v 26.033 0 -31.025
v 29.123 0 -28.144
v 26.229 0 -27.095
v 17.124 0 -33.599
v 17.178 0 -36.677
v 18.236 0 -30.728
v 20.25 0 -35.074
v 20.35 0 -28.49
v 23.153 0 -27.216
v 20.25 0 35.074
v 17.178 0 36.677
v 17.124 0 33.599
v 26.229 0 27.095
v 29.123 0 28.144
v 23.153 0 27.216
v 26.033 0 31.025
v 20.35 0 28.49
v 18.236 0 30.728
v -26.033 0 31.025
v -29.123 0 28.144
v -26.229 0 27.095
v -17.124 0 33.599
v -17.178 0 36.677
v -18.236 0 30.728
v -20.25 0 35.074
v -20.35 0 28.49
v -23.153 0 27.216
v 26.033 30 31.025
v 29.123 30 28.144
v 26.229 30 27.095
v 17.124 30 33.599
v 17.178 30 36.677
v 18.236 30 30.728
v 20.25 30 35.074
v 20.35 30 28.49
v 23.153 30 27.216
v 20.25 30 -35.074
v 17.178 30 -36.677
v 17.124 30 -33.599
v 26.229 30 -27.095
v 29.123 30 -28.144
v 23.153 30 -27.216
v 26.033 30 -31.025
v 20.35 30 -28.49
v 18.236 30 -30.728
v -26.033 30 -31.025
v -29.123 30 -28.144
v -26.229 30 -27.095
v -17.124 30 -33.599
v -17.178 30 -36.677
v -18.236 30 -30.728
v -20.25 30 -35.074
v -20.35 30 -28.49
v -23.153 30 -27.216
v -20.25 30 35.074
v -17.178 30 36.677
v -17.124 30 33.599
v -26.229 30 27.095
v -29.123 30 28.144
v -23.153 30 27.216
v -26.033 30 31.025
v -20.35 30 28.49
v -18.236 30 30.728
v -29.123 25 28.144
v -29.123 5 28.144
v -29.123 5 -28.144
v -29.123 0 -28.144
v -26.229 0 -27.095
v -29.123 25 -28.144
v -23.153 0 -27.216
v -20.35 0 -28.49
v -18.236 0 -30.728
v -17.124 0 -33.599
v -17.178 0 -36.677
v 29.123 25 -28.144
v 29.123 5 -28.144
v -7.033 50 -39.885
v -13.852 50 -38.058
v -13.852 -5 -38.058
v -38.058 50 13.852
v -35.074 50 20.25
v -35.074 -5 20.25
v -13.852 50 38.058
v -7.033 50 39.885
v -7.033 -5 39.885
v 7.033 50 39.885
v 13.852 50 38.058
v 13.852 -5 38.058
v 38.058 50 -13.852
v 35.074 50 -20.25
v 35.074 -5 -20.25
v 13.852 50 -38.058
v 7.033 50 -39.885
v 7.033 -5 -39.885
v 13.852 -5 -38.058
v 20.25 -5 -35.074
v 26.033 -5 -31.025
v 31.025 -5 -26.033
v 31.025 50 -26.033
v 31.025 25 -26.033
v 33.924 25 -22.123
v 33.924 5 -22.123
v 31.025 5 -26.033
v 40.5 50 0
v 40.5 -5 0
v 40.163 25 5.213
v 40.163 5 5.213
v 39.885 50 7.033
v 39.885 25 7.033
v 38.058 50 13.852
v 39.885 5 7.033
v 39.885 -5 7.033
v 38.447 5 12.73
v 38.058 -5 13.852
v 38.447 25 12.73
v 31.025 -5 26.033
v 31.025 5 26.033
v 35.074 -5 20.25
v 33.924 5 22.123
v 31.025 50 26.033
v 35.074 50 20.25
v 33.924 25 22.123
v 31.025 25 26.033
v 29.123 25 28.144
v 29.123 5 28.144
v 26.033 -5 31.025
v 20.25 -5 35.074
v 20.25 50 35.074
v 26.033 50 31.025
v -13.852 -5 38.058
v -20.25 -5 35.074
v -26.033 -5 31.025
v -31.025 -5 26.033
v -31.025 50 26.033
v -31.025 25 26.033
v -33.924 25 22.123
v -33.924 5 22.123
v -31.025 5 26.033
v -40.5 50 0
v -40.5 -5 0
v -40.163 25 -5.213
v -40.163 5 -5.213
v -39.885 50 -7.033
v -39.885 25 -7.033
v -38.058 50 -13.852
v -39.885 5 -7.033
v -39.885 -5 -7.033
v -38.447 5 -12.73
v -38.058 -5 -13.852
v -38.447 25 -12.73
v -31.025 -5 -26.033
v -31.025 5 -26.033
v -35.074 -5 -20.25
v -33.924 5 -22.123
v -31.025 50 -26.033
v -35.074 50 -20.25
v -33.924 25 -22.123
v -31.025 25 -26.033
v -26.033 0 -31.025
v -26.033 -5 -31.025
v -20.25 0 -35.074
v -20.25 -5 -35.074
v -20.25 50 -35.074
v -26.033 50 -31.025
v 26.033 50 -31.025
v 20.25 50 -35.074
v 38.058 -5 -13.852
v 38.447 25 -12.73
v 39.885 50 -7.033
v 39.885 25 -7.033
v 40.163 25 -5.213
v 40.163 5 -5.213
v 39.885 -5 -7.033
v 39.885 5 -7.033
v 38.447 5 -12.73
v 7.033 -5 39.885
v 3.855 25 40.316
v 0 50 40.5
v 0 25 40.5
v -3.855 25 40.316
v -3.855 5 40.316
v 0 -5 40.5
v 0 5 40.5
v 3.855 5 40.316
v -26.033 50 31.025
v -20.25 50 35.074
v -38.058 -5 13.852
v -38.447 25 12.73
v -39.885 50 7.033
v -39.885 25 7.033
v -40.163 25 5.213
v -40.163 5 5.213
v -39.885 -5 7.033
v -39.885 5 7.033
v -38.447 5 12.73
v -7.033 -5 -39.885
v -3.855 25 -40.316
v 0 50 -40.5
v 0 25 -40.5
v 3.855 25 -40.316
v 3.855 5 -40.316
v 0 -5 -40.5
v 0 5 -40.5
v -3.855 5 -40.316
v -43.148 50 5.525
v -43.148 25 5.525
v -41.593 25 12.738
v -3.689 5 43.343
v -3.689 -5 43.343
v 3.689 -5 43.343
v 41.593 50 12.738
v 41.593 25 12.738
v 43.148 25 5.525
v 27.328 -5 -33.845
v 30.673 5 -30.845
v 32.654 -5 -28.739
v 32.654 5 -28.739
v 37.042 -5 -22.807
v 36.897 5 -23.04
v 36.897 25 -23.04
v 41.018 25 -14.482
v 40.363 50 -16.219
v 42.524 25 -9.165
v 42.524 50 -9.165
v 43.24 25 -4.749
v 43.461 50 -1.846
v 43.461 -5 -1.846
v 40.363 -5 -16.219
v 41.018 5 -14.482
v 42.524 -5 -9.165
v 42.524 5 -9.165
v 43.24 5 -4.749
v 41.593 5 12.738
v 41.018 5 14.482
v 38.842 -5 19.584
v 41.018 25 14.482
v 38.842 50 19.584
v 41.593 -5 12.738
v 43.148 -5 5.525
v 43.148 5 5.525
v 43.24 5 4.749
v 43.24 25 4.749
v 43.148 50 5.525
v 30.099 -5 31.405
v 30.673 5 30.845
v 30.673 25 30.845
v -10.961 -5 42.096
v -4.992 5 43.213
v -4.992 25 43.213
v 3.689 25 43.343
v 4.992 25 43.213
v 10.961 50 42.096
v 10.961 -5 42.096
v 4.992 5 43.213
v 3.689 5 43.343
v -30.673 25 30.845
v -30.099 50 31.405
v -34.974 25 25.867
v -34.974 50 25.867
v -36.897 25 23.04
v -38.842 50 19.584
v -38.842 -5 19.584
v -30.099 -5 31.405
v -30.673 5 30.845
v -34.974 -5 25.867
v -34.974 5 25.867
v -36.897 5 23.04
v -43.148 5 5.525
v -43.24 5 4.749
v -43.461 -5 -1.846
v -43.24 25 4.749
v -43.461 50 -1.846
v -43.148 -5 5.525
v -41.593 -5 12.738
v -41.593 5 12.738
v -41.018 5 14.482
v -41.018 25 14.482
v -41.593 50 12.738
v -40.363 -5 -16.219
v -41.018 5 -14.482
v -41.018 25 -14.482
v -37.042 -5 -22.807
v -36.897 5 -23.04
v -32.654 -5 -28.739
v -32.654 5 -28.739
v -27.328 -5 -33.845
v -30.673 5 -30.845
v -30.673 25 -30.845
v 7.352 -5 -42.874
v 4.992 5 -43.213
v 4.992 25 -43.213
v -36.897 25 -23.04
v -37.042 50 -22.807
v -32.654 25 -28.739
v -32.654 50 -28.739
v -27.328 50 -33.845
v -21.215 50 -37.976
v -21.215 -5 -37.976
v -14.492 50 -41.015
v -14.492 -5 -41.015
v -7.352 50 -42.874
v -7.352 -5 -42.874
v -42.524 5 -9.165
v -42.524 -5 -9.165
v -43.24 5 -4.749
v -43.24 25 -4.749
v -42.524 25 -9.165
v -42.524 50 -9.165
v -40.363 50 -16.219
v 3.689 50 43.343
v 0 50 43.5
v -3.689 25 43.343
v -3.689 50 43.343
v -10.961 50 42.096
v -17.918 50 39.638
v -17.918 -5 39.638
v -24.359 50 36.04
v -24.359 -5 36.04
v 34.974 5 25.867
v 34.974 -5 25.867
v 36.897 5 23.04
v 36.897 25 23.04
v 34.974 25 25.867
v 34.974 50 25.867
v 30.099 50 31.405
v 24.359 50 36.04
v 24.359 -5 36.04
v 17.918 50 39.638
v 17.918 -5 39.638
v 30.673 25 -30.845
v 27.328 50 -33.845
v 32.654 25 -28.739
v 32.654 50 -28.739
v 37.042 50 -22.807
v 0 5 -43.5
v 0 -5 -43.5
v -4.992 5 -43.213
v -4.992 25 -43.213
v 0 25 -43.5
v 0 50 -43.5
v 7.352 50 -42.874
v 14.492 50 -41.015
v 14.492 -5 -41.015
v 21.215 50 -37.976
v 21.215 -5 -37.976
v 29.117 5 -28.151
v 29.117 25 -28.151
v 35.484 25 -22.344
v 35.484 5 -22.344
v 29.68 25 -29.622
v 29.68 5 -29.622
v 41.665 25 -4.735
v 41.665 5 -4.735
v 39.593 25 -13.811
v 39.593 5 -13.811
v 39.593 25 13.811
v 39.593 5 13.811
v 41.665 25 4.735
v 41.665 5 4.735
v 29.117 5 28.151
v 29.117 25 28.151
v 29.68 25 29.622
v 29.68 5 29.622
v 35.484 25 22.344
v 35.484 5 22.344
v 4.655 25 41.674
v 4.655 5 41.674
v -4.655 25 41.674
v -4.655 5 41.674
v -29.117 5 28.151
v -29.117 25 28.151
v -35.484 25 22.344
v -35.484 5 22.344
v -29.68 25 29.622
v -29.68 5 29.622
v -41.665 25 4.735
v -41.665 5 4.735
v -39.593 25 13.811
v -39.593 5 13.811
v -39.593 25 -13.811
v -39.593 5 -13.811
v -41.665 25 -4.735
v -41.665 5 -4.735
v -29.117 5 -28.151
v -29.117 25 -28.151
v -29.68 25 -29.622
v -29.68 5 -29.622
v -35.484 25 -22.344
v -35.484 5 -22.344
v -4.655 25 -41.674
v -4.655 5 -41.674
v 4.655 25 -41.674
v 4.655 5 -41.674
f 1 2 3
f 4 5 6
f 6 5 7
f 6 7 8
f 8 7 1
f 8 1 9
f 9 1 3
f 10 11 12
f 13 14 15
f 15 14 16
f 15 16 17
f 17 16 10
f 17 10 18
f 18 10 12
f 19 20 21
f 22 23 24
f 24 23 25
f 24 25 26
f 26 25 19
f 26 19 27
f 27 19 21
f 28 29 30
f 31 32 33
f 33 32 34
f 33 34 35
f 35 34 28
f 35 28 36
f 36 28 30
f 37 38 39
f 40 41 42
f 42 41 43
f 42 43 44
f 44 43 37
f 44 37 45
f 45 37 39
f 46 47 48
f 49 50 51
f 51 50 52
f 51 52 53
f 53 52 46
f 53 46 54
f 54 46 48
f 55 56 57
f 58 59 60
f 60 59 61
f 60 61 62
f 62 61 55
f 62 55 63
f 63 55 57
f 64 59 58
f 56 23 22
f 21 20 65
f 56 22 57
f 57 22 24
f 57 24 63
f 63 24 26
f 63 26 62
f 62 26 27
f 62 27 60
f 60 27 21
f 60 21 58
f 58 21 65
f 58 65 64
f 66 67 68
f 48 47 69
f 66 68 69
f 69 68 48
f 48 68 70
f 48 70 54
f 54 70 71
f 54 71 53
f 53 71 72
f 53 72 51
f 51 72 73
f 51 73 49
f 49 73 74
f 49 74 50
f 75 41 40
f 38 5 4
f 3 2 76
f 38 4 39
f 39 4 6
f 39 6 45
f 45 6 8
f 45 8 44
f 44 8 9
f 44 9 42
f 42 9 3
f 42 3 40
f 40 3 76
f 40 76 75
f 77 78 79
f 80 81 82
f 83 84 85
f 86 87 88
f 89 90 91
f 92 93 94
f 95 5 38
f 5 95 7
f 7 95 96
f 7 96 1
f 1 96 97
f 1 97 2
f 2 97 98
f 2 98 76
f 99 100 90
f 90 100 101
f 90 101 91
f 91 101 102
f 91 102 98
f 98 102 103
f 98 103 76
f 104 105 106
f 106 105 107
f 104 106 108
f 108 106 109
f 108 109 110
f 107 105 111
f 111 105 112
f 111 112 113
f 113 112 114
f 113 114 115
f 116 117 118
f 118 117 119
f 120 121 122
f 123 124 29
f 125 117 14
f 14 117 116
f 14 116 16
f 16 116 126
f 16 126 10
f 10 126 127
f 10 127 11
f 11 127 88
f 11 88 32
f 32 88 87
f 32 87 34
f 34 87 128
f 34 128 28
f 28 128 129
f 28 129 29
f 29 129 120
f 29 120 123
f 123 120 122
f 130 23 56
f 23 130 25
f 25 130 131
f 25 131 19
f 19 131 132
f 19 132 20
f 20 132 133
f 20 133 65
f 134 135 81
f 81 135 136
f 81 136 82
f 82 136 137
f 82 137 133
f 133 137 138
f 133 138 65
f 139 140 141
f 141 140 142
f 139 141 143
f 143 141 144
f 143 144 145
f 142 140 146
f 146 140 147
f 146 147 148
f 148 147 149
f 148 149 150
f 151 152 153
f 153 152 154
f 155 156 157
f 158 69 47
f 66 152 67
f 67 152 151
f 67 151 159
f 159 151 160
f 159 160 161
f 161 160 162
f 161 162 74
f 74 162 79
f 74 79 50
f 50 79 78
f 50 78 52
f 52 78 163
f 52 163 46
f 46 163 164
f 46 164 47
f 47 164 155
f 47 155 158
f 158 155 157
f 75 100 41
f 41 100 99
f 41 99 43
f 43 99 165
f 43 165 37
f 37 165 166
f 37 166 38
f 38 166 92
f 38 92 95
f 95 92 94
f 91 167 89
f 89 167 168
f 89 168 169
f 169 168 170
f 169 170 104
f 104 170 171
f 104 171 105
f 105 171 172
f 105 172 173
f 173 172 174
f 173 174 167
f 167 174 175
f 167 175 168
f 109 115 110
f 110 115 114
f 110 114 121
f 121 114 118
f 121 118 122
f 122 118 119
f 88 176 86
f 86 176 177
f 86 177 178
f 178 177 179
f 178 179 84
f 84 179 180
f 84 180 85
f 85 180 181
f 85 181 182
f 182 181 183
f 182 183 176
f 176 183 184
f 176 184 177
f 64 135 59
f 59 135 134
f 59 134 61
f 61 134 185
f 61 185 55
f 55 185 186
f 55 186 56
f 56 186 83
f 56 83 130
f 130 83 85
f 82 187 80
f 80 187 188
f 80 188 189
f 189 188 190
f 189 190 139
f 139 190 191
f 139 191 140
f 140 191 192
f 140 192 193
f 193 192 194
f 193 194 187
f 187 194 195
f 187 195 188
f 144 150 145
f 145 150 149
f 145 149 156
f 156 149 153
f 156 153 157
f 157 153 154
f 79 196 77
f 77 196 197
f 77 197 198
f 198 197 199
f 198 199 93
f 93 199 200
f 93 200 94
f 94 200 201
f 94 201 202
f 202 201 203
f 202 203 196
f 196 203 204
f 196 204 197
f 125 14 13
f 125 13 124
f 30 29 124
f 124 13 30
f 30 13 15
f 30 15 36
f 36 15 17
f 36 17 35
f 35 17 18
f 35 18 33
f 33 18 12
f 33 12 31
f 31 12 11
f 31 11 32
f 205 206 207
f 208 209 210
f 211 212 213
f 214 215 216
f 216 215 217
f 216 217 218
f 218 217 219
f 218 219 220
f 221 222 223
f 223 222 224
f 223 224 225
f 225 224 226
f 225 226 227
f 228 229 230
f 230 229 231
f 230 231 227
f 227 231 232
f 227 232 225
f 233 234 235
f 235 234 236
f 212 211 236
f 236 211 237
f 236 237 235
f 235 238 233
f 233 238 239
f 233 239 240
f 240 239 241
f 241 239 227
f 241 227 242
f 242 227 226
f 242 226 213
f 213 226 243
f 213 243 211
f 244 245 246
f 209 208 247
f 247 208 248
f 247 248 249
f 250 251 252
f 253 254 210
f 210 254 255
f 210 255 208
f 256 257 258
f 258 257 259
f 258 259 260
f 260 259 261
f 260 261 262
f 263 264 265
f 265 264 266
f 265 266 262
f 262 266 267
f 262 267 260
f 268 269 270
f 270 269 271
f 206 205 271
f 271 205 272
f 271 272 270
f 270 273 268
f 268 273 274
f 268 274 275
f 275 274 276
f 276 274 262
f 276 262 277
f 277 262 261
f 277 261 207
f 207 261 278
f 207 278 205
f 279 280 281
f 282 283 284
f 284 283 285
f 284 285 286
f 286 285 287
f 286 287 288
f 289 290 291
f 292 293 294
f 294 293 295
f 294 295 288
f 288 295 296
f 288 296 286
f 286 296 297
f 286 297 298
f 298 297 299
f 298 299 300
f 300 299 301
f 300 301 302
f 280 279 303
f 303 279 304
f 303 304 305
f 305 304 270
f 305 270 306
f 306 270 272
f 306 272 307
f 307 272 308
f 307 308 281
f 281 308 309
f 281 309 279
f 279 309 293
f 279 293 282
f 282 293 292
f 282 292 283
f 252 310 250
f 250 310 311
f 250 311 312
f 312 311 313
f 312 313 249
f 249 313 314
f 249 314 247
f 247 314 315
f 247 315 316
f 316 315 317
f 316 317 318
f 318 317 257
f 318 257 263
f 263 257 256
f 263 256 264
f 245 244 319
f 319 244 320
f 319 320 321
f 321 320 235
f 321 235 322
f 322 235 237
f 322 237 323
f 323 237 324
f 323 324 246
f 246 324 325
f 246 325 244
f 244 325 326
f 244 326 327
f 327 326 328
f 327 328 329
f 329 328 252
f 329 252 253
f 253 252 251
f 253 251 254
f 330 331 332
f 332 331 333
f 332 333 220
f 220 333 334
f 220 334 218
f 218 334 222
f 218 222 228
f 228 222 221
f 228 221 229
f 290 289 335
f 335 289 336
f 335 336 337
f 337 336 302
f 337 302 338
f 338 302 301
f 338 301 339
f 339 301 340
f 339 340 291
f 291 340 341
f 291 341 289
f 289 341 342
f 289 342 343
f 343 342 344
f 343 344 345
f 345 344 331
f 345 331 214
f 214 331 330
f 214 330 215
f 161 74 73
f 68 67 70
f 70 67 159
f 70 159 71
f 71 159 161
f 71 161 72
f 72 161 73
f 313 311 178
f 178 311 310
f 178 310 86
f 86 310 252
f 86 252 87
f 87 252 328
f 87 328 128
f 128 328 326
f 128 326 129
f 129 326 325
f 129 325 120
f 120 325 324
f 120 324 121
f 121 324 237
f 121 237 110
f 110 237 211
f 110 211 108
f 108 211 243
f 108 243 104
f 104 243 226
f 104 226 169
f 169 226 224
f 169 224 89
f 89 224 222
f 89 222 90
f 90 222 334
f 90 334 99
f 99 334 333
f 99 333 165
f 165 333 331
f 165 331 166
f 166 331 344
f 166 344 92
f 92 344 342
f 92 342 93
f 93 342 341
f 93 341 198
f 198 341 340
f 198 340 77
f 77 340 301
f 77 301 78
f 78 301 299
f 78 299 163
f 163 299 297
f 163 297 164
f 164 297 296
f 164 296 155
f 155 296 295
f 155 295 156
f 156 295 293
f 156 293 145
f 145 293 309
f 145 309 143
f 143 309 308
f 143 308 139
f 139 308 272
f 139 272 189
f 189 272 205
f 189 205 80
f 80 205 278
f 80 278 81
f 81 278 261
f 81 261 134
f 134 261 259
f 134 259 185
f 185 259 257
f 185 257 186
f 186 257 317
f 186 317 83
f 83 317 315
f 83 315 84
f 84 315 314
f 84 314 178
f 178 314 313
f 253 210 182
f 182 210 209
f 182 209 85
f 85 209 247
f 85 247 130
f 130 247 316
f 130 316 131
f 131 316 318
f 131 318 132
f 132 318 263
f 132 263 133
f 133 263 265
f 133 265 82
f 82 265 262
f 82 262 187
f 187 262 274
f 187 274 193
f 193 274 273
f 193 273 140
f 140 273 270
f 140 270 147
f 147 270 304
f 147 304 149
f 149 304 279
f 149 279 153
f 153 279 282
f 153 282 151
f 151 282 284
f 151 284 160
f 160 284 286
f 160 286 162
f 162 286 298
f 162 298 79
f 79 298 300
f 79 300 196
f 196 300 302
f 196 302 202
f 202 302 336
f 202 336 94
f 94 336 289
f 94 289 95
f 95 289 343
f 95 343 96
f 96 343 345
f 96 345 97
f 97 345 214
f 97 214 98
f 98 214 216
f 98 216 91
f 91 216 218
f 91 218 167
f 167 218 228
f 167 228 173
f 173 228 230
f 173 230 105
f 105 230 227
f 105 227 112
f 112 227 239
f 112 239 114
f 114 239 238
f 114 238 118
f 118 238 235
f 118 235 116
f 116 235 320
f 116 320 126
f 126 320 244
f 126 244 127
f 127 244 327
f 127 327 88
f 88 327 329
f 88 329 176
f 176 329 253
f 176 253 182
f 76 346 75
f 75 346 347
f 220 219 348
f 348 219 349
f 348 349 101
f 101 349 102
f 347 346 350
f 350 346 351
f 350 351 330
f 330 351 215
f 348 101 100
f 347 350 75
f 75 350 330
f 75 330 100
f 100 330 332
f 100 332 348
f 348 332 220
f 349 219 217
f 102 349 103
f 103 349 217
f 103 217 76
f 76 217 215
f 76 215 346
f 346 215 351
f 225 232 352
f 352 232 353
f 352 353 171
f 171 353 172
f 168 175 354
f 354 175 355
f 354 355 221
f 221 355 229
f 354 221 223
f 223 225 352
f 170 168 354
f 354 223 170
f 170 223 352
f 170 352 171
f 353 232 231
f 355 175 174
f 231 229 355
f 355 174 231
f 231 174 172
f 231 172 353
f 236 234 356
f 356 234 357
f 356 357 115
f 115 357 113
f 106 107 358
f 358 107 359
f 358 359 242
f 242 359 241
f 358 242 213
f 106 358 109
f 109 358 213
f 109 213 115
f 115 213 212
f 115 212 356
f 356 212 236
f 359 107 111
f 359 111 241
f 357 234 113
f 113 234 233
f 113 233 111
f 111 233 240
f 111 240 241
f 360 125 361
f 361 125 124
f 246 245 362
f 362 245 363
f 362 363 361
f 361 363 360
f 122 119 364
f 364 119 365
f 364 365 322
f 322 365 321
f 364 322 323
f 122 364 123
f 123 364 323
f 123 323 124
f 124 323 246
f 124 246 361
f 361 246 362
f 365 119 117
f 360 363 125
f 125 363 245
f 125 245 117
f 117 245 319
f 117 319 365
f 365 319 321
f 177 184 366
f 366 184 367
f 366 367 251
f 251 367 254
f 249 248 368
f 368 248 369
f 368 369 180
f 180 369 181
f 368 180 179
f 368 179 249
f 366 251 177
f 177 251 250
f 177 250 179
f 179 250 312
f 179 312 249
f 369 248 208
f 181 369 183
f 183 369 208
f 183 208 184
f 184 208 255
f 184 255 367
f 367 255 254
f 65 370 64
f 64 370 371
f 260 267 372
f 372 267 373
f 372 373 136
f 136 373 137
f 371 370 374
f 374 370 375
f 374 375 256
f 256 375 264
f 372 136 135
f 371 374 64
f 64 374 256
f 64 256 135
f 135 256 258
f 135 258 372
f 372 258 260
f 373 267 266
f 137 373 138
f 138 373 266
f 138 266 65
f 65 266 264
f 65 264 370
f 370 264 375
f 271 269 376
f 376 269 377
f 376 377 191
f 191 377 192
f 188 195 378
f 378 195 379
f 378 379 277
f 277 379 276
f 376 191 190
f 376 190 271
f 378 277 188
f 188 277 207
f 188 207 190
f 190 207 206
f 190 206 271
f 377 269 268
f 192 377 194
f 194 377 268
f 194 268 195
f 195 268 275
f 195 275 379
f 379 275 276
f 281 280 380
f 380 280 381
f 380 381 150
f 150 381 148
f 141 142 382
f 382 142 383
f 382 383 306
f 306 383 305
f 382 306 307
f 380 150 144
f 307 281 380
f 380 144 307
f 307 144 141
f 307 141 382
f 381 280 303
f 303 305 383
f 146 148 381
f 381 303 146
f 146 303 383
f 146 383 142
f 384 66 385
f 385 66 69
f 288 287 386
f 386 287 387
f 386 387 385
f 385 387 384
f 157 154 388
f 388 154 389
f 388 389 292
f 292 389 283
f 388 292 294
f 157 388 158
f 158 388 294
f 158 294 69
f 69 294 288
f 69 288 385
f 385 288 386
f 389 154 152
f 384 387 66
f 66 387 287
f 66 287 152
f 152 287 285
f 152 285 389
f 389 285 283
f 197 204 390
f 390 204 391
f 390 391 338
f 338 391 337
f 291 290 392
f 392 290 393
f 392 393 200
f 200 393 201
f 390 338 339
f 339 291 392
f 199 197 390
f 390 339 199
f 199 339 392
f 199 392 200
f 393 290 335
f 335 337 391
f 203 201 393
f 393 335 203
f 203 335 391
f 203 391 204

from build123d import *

# Parameters (mm, degrees)
SKETCH1_R               = 43.5
SKETCH1_R_2             = 40.5
BOSS_EXTRUDE1_DEPTH     = 30
SKETCH2_R               = 43.5
SKETCH2_R_2             = 40.5
BOSS_EXTRUDE2_DEPTH     = 20
BOSS_EXTRUDE3_START     = 5
SKETCH3_R               = 43.5
SKETCH3_R_2             = 40.5
BOSS_EXTRUDE3_DEPTH     = 5
CUT_EXTRUDE1_DEPTH      = 10
CUT_EXTRUDE1_DEPTH_BACK = 10


with BuildPart() as part:
    # Sketch1 → Boss-Extrude1 (new body)
    # profile 1 of 5: a face of its own
    with BuildSketch(Plane(origin=(0, 0, 0), x_dir=(1, 0, 0), z_dir=(0, 1, 0))):
        with Locations(Location((0, 0, 0), (0, 0, 270))):
            Circle(SKETCH1_R)
        Circle(SKETCH1_R_2, mode=Mode.SUBTRACT)
    # profile 2 of 5: a face of its own
    with BuildSketch(Plane(origin=(0, 0, 0), x_dir=(1, 0, 0), z_dir=(0, 1, 0))):
        with BuildLine():
            ThreePointArc((-29.123002918, 28.14428363), (-20.35009445, 28.49013223), (-17.177672758, 36.676662316))
            ThreePointArc((-17.177672758, 36.676662316), (-23.540146846, 32.956205584), (-29.123002918, 28.14428363))
        make_face()
    # profile 3 of 5: a face of its own
    with BuildSketch(Plane(origin=(0, 0, 0), x_dir=(1, 0, 0), z_dir=(0, 1, 0))):
        with BuildLine():
            ThreePointArc((-29.123002918, -28.14428363), (-23.540146846, -32.956205584), (-17.177672758, -36.676662316))
            ThreePointArc((-17.177672758, -36.676662316), (-20.35009445, -28.49013223), (-29.123002918, -28.14428363))
        make_face()
    # profile 4 of 5: a face of its own
    with BuildSketch(Plane(origin=(0, 0, 0), x_dir=(1, 0, 0), z_dir=(0, 1, 0))):
        with BuildLine():
            ThreePointArc((17.177672758, -36.676662316), (23.540146846, -32.956205584), (29.123002918, -28.14428363))
            ThreePointArc((29.123002918, -28.14428363), (20.35009445, -28.49013223), (17.177672758, -36.676662316))
        make_face()
    # profile 5 of 5: a face of its own
    with BuildSketch(Plane(origin=(0, 0, 0), x_dir=(1, 0, 0), z_dir=(0, 1, 0))):
        with BuildLine():
            ThreePointArc((17.177672758, 36.676662316), (20.35009445, 28.49013223), (29.123002918, 28.14428363))
            ThreePointArc((29.123002918, 28.14428363), (23.540146846, 32.956205584), (17.177672758, 36.676662316))
        make_face()
    extrude(amount=BOSS_EXTRUDE1_DEPTH)

    # Sketch2 → Boss-Extrude2 (add)
    with BuildSketch(Plane(origin=(0, 30, 0), x_dir=(1, 0, 0), z_dir=(0, 1, 0))):
        with Locations(Location((0, 0, 0), (0, 0, 270))):
            Circle(SKETCH2_R)
        with Locations(Location((0, 0, 0), (0, 0, 64.90375534))):
            Circle(SKETCH2_R_2, mode=Mode.SUBTRACT)
    extrude(amount=BOSS_EXTRUDE2_DEPTH)

    # Sketch3 → Boss-Extrude3 (add)
    with BuildSketch(Plane.XZ.offset(BOSS_EXTRUDE3_START)):
        with Locations(Location((0, 0, 0), (0, 0, 270))):
            Circle(SKETCH3_R)
        with Locations(Location((0, 0, 0), (0, 0, 270))):
            Circle(SKETCH3_R_2, mode=Mode.SUBTRACT)
    extrude(amount=-BOSS_EXTRUDE3_DEPTH)

    # Sketch5 → Cut-Extrude1 (cut, two sides: drawn at the far end of the back side and taken through both)
    with BuildSketch(Plane(origin=(0, 15, 0), x_dir=(1, 0, 0), z_dir=(0, 1, 0)).offset(-CUT_EXTRUDE1_DEPTH_BACK)):
        with BuildLine():
            ThreePointArc((-4.991735805, 43.212643678), (-4.654531608, 41.673709906), (-3.855221077, 40.316091954))
            ThreePointArc((-3.855221077, 40.316091954), (0, 40.5), (3.855221077, 40.316091954))
            ThreePointArc((3.855221077, 40.316091954), (4.654531608, 41.673709906), (4.991735805, 43.212643678))
            ThreePointArc((4.991735805, 43.212643678), (0, 43.5), (-4.991735805, 43.212643678))
        make_face()
        with BuildLine():
            ThreePointArc((33.924080965, 22.122538974), (31.66417504, 25.251336975), (29.116698914, 28.150805394))
            ThreePointArc((29.116698914, 28.150805394), (29.679765405, 29.622192479), (30.6727089, 30.845338849))
            ThreePointArc((30.6727089, 30.845338849), (34.009669487, 27.121806381), (36.897301636, 23.03994644))
            ThreePointArc((36.897301636, 23.03994644), (35.483871385, 22.344073784), (33.924080965, 22.122538974))
        make_face()
        with BuildLine():
            ThreePointArc((40.163150751, 5.212611799), (39.484580443, 9.012097825), (38.447415961, 12.729737071))
            ThreePointArc((38.447415961, 12.729737071), (39.59313227, 13.811105632), (41.018446768, 14.482300396))
            ThreePointArc((41.018446768, 14.482300396), (42.40936418, 9.679660627), (43.239978194, 4.749135264))
            ThreePointArc((43.239978194, 4.749135264), (41.664593712, 4.735440067), (40.163150751, 5.212611799))
        make_face()
        with BuildLine():
            ThreePointArc((41.018446768, -14.482300396), (42.40936418, -9.679660627), (43.239978194, -4.749135264))
            ThreePointArc((43.239978194, -4.749135264), (41.664593712, -4.735440067), (40.163150751, -5.212611799))
            ThreePointArc((40.163150751, -5.212611799), (39.484580443, -9.012097825), (38.447415961, -12.729737071))
            ThreePointArc((38.447415961, -12.729737071), (39.59313227, -13.811105632), (41.018446768, -14.482300396))
        make_face()
        with BuildLine():
            ThreePointArc((29.116698914, -28.150805394), (29.679765405, -29.622192479), (30.6727089, -30.845338849))
            ThreePointArc((30.6727089, -30.845338849), (34.009669487, -27.121806381), (36.897301636, -23.03994644))
            ThreePointArc((36.897301636, -23.03994644), (35.483871385, -22.344073784), (33.924080965, -22.122538974))
            ThreePointArc((33.924080965, -22.122538974), (31.66417504, -25.251336975), (29.116698914, -28.150805394))
        make_face()
        with BuildLine():
            ThreePointArc((4.991735805, -43.212643678), (4.654531608, -41.673709906), (3.855221077, -40.316091954))
            ThreePointArc((3.855221077, -40.316091954), (0, -40.5), (-3.855221077, -40.316091954))
            ThreePointArc((-3.855221077, -40.316091954), (-4.654531608, -41.673709906), (-4.991735805, -43.212643678))
            ThreePointArc((-4.991735805, -43.212643678), (0, -43.5), (4.991735805, -43.212643678))
        make_face()
        with BuildLine():
            ThreePointArc((-36.897301636, -23.03994644), (-34.009669487, -27.121806381), (-30.6727089, -30.845338849))
            ThreePointArc((-30.6727089, -30.845338849), (-29.679765405, -29.622192479), (-29.116698914, -28.150805394))
            ThreePointArc((-29.116698914, -28.150805394), (-31.66417504, -25.251336975), (-33.924080965, -22.122538974))
            ThreePointArc((-33.924080965, -22.122538974), (-35.483871385, -22.344073784), (-36.897301636, -23.03994644))
        make_face()
        with BuildLine():
            ThreePointArc((-43.239978194, -4.749135264), (-42.40936418, -9.679660627), (-41.018446768, -14.482300396))
            ThreePointArc((-41.018446768, -14.482300396), (-39.59313227, -13.811105632), (-38.447415961, -12.729737071))
            ThreePointArc((-38.447415961, -12.729737071), (-39.484580443, -9.012097825), (-40.163150751, -5.212611799))
            ThreePointArc((-40.163150751, -5.212611799), (-41.664593712, -4.735440067), (-43.239978194, -4.749135264))
        make_face()
        with BuildLine():
            ThreePointArc((-38.447415961, 12.729737071), (-39.484580443, 9.012097825), (-40.163150751, 5.212611799))
            ThreePointArc((-40.163150751, 5.212611799), (-41.664593712, 4.735440067), (-43.239978194, 4.749135264))
            ThreePointArc((-43.239978194, 4.749135264), (-42.40936418, 9.679660627), (-41.018446768, 14.482300396))
            ThreePointArc((-41.018446768, 14.482300396), (-39.59313227, 13.811105632), (-38.447415961, 12.729737071))
        make_face()
        with BuildLine():
            ThreePointArc((-29.116698914, 28.150805394), (-29.679765405, 29.622192479), (-30.6727089, 30.845338849))
            ThreePointArc((-30.6727089, 30.845338849), (-34.009669487, 27.121806381), (-36.897301636, 23.03994644))
            ThreePointArc((-36.897301636, 23.03994644), (-35.483871385, 22.344073784), (-33.924080965, 22.122538974))
            ThreePointArc((-33.924080965, 22.122538974), (-31.66417504, 25.251336975), (-29.116698914, 28.150805394))
        make_face()
    extrude(amount=CUT_EXTRUDE1_DEPTH + CUT_EXTRUDE1_DEPTH_BACK, mode=Mode.SUBTRACT)


solid = part.part
